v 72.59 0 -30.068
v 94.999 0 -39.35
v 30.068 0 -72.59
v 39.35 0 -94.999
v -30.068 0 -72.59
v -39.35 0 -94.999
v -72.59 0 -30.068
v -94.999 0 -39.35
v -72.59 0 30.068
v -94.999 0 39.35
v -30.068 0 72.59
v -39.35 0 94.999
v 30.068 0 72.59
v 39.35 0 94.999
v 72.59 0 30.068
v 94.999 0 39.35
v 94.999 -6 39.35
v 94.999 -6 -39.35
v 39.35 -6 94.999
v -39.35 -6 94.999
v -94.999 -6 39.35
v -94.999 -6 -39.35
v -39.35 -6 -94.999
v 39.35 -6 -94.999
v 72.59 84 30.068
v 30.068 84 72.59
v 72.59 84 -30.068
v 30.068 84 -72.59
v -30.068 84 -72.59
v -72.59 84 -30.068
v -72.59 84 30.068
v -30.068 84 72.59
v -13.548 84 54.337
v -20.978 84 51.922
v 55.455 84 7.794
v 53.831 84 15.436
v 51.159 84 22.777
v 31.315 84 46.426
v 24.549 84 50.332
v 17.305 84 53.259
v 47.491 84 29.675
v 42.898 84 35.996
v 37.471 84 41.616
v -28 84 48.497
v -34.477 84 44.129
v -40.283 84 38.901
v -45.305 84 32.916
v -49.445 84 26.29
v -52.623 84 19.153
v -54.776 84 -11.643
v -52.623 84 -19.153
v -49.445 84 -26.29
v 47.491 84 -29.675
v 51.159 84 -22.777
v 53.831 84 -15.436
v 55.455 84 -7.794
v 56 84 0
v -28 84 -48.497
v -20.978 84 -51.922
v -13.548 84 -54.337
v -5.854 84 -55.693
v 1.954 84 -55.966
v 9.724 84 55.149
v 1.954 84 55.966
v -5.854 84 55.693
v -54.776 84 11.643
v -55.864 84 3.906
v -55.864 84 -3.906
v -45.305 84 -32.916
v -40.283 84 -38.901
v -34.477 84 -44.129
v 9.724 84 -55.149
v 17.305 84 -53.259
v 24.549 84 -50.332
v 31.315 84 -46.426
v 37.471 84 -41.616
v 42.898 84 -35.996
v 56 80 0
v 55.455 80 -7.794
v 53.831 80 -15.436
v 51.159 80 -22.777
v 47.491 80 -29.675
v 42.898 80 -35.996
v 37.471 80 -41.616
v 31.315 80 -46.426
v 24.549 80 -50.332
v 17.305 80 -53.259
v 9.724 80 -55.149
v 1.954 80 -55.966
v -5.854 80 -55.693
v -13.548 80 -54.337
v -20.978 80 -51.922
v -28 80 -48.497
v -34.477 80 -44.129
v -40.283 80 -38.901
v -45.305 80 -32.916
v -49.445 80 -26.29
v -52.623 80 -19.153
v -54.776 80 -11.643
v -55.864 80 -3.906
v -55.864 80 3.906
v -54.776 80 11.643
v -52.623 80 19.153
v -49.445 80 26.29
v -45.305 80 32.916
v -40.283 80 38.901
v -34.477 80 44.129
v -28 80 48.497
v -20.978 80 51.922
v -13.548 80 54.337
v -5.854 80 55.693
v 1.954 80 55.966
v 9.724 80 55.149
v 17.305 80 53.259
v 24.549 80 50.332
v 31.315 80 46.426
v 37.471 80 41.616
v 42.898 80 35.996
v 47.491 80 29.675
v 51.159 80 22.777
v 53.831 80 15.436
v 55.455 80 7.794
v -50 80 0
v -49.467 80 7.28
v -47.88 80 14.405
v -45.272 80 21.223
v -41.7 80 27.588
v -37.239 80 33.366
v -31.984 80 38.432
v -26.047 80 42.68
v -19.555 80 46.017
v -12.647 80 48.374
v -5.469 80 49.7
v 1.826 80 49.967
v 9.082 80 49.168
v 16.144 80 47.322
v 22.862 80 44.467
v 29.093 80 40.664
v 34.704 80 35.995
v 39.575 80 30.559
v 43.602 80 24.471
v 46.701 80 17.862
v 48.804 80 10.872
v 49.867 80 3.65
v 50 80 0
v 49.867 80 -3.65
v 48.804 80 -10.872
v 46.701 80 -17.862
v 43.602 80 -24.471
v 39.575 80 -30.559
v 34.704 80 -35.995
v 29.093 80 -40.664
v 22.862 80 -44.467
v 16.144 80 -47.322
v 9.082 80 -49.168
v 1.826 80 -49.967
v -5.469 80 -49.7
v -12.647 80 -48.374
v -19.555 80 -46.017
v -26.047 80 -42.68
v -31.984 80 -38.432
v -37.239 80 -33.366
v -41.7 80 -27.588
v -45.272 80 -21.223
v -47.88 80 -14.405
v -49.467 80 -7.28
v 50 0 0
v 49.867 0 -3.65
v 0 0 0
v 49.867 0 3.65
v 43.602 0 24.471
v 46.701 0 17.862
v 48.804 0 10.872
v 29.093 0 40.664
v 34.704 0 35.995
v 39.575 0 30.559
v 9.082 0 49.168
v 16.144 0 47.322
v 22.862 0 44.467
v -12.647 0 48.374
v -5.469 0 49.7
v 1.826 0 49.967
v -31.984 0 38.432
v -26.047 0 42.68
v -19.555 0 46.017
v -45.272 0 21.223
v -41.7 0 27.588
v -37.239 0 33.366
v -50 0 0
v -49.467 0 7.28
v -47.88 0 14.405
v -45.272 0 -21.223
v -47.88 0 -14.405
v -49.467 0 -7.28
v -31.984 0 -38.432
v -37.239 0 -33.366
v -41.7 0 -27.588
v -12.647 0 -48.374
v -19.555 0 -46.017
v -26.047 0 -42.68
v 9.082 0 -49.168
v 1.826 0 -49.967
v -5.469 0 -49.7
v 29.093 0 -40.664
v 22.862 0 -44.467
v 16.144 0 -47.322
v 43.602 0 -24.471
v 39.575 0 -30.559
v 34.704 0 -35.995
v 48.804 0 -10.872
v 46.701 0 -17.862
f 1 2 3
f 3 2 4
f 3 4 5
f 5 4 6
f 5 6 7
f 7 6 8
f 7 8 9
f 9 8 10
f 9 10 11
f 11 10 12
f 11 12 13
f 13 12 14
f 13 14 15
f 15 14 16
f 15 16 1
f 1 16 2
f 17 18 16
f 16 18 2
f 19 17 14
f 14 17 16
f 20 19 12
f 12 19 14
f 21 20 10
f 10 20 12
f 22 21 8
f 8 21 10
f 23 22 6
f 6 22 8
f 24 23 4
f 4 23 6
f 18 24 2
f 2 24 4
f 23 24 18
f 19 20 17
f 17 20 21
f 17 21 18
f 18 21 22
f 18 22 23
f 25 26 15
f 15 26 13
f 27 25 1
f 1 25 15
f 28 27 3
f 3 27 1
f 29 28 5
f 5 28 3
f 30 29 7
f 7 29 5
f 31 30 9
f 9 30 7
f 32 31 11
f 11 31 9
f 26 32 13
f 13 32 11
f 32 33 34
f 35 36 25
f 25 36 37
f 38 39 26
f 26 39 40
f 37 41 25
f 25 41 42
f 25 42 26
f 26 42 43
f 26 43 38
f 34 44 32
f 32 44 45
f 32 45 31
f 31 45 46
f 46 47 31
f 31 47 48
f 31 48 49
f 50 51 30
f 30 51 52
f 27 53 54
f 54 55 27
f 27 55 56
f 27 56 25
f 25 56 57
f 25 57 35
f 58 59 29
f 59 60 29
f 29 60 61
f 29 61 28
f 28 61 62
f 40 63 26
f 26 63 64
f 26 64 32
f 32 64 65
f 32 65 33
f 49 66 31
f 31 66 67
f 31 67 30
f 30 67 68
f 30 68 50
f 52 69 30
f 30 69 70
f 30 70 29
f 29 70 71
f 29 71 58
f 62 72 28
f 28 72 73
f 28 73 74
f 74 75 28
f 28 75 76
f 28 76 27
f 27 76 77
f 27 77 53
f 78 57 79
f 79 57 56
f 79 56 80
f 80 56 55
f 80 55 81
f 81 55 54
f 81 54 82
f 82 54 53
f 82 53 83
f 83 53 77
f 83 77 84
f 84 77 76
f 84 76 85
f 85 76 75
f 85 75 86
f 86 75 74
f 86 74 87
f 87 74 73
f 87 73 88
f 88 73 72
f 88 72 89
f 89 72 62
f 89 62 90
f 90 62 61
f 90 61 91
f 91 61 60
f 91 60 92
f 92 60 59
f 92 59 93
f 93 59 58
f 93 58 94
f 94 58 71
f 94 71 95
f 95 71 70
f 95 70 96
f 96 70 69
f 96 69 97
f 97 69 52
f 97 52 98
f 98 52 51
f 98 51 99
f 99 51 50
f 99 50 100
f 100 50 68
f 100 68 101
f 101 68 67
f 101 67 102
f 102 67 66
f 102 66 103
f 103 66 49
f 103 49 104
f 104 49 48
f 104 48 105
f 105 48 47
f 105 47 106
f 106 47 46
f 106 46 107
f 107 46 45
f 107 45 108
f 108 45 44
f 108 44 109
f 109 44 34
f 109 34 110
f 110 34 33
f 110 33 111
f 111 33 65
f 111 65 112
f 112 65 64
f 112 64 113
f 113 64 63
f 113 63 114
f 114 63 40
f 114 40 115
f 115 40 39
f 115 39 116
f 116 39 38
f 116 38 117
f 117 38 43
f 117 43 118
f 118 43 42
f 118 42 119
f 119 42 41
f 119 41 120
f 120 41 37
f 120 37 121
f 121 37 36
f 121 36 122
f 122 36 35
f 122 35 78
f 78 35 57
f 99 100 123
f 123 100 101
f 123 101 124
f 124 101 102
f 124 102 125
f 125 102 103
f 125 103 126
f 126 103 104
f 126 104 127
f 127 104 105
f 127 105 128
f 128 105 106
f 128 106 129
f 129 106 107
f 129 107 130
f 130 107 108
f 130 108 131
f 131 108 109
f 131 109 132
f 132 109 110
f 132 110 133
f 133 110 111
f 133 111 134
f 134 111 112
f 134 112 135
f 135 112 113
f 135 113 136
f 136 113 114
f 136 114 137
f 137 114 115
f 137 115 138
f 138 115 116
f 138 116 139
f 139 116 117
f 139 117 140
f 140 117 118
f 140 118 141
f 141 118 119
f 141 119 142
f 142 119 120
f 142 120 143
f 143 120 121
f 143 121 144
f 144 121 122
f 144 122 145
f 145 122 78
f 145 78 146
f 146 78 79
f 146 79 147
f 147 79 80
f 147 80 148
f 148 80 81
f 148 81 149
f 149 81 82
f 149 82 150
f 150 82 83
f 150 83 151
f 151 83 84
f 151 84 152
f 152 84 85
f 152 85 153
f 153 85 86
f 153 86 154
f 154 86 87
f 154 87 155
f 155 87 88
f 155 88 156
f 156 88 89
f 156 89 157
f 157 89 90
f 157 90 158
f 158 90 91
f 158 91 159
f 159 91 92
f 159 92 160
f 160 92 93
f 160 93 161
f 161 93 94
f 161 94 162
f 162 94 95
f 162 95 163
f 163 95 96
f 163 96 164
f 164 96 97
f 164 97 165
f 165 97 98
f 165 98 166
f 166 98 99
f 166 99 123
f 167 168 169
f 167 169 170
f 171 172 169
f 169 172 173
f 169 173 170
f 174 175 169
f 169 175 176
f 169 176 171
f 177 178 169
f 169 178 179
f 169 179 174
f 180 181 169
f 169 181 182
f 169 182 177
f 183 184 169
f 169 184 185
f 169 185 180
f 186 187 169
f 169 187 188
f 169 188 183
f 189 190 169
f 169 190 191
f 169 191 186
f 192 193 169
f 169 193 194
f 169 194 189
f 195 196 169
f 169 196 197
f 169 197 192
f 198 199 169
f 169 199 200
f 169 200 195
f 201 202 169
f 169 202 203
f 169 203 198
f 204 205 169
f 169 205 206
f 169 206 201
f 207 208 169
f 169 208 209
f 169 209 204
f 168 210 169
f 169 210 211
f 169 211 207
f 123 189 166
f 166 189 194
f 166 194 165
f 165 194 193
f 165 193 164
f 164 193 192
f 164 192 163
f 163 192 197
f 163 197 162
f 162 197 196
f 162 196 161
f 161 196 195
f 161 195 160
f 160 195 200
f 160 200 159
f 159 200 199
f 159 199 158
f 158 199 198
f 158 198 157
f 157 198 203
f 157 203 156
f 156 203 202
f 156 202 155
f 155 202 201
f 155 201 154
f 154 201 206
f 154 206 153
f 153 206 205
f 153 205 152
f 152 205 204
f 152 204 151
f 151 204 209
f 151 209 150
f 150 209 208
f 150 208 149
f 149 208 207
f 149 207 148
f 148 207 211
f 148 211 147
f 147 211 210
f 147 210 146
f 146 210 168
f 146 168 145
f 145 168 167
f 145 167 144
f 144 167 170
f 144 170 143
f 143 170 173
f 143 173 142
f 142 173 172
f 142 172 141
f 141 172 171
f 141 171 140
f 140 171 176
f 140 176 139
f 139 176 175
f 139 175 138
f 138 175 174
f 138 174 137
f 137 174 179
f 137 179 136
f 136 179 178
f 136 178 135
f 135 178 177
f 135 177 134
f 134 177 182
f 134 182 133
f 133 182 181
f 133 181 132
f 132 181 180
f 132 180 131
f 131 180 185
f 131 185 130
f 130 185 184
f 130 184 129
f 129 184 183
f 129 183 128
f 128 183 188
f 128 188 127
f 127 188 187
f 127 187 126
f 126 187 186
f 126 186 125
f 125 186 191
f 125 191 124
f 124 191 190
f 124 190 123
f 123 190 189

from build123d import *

# Parameters (mm, degrees)
BOSS_EXTRUDE7_DEPTH = 6
SKETCH1_R           = 50
BOSS_EXTRUDE8_DEPTH = 84
CUT_EXTRUDE1_START  = -4
SKETCH4_R           = 56
SKETCH4_R_2         = 50
CUT_EXTRUDE1_DEPTH  = 4


with BuildPart() as part:
    # Sketch2 → Boss-Extrude7 (new body)
    with BuildSketch(Plane(origin=(0, 0, 0), x_dir=(1, 0, 0), z_dir=(0, 1, 0))):
        Polygon((39.35, -94.999303679), (94.999303679, -39.35), (94.999303679, 39.35), (39.35, 94.999303679), (-39.35, 94.999303679), (-94.999303679, 39.35), (-94.999303679, -39.35), (-39.35, -94.999303679), align=None)
    extrude(amount=-BOSS_EXTRUDE7_DEPTH)

    # Sketch1 → Boss-Extrude8 (add)
    with BuildSketch(Plane(origin=(0, 0, 0), x_dir=(1, 0, 0), z_dir=(0, 1, 0))):
        Polygon((-72.59, -30.067762493), (-30.067762493, -72.59), (30.067762493, -72.59), (72.59, -30.067762493), (72.59, 30.067762493), (30.067762493, 72.59), (-30.067762493, 72.59), (-72.59, 30.067762493), align=None)
        with Locations(Location((0, 0, 0), (0, 0, 90))):
            Circle(SKETCH1_R, mode=Mode.SUBTRACT)
    extrude(amount=BOSS_EXTRUDE8_DEPTH)

    # Sketch4 → Cut-Extrude1 (cut)
    with BuildSketch(Plane(origin=(0, 84, 0), x_dir=(1, 0, 0), z_dir=(0, 1, 0)).offset(CUT_EXTRUDE1_START)):
        with Locations(Location((0, 0, 0), (0, 0, 270))):
            Circle(SKETCH4_R)
        with Locations(Location((0, 0, 0), (0, 0, 90))):
            Circle(SKETCH4_R_2, mode=Mode.SUBTRACT)
    extrude(amount=CUT_EXTRUDE1_DEPTH, mode=Mode.SUBTRACT)


solid = part.part
